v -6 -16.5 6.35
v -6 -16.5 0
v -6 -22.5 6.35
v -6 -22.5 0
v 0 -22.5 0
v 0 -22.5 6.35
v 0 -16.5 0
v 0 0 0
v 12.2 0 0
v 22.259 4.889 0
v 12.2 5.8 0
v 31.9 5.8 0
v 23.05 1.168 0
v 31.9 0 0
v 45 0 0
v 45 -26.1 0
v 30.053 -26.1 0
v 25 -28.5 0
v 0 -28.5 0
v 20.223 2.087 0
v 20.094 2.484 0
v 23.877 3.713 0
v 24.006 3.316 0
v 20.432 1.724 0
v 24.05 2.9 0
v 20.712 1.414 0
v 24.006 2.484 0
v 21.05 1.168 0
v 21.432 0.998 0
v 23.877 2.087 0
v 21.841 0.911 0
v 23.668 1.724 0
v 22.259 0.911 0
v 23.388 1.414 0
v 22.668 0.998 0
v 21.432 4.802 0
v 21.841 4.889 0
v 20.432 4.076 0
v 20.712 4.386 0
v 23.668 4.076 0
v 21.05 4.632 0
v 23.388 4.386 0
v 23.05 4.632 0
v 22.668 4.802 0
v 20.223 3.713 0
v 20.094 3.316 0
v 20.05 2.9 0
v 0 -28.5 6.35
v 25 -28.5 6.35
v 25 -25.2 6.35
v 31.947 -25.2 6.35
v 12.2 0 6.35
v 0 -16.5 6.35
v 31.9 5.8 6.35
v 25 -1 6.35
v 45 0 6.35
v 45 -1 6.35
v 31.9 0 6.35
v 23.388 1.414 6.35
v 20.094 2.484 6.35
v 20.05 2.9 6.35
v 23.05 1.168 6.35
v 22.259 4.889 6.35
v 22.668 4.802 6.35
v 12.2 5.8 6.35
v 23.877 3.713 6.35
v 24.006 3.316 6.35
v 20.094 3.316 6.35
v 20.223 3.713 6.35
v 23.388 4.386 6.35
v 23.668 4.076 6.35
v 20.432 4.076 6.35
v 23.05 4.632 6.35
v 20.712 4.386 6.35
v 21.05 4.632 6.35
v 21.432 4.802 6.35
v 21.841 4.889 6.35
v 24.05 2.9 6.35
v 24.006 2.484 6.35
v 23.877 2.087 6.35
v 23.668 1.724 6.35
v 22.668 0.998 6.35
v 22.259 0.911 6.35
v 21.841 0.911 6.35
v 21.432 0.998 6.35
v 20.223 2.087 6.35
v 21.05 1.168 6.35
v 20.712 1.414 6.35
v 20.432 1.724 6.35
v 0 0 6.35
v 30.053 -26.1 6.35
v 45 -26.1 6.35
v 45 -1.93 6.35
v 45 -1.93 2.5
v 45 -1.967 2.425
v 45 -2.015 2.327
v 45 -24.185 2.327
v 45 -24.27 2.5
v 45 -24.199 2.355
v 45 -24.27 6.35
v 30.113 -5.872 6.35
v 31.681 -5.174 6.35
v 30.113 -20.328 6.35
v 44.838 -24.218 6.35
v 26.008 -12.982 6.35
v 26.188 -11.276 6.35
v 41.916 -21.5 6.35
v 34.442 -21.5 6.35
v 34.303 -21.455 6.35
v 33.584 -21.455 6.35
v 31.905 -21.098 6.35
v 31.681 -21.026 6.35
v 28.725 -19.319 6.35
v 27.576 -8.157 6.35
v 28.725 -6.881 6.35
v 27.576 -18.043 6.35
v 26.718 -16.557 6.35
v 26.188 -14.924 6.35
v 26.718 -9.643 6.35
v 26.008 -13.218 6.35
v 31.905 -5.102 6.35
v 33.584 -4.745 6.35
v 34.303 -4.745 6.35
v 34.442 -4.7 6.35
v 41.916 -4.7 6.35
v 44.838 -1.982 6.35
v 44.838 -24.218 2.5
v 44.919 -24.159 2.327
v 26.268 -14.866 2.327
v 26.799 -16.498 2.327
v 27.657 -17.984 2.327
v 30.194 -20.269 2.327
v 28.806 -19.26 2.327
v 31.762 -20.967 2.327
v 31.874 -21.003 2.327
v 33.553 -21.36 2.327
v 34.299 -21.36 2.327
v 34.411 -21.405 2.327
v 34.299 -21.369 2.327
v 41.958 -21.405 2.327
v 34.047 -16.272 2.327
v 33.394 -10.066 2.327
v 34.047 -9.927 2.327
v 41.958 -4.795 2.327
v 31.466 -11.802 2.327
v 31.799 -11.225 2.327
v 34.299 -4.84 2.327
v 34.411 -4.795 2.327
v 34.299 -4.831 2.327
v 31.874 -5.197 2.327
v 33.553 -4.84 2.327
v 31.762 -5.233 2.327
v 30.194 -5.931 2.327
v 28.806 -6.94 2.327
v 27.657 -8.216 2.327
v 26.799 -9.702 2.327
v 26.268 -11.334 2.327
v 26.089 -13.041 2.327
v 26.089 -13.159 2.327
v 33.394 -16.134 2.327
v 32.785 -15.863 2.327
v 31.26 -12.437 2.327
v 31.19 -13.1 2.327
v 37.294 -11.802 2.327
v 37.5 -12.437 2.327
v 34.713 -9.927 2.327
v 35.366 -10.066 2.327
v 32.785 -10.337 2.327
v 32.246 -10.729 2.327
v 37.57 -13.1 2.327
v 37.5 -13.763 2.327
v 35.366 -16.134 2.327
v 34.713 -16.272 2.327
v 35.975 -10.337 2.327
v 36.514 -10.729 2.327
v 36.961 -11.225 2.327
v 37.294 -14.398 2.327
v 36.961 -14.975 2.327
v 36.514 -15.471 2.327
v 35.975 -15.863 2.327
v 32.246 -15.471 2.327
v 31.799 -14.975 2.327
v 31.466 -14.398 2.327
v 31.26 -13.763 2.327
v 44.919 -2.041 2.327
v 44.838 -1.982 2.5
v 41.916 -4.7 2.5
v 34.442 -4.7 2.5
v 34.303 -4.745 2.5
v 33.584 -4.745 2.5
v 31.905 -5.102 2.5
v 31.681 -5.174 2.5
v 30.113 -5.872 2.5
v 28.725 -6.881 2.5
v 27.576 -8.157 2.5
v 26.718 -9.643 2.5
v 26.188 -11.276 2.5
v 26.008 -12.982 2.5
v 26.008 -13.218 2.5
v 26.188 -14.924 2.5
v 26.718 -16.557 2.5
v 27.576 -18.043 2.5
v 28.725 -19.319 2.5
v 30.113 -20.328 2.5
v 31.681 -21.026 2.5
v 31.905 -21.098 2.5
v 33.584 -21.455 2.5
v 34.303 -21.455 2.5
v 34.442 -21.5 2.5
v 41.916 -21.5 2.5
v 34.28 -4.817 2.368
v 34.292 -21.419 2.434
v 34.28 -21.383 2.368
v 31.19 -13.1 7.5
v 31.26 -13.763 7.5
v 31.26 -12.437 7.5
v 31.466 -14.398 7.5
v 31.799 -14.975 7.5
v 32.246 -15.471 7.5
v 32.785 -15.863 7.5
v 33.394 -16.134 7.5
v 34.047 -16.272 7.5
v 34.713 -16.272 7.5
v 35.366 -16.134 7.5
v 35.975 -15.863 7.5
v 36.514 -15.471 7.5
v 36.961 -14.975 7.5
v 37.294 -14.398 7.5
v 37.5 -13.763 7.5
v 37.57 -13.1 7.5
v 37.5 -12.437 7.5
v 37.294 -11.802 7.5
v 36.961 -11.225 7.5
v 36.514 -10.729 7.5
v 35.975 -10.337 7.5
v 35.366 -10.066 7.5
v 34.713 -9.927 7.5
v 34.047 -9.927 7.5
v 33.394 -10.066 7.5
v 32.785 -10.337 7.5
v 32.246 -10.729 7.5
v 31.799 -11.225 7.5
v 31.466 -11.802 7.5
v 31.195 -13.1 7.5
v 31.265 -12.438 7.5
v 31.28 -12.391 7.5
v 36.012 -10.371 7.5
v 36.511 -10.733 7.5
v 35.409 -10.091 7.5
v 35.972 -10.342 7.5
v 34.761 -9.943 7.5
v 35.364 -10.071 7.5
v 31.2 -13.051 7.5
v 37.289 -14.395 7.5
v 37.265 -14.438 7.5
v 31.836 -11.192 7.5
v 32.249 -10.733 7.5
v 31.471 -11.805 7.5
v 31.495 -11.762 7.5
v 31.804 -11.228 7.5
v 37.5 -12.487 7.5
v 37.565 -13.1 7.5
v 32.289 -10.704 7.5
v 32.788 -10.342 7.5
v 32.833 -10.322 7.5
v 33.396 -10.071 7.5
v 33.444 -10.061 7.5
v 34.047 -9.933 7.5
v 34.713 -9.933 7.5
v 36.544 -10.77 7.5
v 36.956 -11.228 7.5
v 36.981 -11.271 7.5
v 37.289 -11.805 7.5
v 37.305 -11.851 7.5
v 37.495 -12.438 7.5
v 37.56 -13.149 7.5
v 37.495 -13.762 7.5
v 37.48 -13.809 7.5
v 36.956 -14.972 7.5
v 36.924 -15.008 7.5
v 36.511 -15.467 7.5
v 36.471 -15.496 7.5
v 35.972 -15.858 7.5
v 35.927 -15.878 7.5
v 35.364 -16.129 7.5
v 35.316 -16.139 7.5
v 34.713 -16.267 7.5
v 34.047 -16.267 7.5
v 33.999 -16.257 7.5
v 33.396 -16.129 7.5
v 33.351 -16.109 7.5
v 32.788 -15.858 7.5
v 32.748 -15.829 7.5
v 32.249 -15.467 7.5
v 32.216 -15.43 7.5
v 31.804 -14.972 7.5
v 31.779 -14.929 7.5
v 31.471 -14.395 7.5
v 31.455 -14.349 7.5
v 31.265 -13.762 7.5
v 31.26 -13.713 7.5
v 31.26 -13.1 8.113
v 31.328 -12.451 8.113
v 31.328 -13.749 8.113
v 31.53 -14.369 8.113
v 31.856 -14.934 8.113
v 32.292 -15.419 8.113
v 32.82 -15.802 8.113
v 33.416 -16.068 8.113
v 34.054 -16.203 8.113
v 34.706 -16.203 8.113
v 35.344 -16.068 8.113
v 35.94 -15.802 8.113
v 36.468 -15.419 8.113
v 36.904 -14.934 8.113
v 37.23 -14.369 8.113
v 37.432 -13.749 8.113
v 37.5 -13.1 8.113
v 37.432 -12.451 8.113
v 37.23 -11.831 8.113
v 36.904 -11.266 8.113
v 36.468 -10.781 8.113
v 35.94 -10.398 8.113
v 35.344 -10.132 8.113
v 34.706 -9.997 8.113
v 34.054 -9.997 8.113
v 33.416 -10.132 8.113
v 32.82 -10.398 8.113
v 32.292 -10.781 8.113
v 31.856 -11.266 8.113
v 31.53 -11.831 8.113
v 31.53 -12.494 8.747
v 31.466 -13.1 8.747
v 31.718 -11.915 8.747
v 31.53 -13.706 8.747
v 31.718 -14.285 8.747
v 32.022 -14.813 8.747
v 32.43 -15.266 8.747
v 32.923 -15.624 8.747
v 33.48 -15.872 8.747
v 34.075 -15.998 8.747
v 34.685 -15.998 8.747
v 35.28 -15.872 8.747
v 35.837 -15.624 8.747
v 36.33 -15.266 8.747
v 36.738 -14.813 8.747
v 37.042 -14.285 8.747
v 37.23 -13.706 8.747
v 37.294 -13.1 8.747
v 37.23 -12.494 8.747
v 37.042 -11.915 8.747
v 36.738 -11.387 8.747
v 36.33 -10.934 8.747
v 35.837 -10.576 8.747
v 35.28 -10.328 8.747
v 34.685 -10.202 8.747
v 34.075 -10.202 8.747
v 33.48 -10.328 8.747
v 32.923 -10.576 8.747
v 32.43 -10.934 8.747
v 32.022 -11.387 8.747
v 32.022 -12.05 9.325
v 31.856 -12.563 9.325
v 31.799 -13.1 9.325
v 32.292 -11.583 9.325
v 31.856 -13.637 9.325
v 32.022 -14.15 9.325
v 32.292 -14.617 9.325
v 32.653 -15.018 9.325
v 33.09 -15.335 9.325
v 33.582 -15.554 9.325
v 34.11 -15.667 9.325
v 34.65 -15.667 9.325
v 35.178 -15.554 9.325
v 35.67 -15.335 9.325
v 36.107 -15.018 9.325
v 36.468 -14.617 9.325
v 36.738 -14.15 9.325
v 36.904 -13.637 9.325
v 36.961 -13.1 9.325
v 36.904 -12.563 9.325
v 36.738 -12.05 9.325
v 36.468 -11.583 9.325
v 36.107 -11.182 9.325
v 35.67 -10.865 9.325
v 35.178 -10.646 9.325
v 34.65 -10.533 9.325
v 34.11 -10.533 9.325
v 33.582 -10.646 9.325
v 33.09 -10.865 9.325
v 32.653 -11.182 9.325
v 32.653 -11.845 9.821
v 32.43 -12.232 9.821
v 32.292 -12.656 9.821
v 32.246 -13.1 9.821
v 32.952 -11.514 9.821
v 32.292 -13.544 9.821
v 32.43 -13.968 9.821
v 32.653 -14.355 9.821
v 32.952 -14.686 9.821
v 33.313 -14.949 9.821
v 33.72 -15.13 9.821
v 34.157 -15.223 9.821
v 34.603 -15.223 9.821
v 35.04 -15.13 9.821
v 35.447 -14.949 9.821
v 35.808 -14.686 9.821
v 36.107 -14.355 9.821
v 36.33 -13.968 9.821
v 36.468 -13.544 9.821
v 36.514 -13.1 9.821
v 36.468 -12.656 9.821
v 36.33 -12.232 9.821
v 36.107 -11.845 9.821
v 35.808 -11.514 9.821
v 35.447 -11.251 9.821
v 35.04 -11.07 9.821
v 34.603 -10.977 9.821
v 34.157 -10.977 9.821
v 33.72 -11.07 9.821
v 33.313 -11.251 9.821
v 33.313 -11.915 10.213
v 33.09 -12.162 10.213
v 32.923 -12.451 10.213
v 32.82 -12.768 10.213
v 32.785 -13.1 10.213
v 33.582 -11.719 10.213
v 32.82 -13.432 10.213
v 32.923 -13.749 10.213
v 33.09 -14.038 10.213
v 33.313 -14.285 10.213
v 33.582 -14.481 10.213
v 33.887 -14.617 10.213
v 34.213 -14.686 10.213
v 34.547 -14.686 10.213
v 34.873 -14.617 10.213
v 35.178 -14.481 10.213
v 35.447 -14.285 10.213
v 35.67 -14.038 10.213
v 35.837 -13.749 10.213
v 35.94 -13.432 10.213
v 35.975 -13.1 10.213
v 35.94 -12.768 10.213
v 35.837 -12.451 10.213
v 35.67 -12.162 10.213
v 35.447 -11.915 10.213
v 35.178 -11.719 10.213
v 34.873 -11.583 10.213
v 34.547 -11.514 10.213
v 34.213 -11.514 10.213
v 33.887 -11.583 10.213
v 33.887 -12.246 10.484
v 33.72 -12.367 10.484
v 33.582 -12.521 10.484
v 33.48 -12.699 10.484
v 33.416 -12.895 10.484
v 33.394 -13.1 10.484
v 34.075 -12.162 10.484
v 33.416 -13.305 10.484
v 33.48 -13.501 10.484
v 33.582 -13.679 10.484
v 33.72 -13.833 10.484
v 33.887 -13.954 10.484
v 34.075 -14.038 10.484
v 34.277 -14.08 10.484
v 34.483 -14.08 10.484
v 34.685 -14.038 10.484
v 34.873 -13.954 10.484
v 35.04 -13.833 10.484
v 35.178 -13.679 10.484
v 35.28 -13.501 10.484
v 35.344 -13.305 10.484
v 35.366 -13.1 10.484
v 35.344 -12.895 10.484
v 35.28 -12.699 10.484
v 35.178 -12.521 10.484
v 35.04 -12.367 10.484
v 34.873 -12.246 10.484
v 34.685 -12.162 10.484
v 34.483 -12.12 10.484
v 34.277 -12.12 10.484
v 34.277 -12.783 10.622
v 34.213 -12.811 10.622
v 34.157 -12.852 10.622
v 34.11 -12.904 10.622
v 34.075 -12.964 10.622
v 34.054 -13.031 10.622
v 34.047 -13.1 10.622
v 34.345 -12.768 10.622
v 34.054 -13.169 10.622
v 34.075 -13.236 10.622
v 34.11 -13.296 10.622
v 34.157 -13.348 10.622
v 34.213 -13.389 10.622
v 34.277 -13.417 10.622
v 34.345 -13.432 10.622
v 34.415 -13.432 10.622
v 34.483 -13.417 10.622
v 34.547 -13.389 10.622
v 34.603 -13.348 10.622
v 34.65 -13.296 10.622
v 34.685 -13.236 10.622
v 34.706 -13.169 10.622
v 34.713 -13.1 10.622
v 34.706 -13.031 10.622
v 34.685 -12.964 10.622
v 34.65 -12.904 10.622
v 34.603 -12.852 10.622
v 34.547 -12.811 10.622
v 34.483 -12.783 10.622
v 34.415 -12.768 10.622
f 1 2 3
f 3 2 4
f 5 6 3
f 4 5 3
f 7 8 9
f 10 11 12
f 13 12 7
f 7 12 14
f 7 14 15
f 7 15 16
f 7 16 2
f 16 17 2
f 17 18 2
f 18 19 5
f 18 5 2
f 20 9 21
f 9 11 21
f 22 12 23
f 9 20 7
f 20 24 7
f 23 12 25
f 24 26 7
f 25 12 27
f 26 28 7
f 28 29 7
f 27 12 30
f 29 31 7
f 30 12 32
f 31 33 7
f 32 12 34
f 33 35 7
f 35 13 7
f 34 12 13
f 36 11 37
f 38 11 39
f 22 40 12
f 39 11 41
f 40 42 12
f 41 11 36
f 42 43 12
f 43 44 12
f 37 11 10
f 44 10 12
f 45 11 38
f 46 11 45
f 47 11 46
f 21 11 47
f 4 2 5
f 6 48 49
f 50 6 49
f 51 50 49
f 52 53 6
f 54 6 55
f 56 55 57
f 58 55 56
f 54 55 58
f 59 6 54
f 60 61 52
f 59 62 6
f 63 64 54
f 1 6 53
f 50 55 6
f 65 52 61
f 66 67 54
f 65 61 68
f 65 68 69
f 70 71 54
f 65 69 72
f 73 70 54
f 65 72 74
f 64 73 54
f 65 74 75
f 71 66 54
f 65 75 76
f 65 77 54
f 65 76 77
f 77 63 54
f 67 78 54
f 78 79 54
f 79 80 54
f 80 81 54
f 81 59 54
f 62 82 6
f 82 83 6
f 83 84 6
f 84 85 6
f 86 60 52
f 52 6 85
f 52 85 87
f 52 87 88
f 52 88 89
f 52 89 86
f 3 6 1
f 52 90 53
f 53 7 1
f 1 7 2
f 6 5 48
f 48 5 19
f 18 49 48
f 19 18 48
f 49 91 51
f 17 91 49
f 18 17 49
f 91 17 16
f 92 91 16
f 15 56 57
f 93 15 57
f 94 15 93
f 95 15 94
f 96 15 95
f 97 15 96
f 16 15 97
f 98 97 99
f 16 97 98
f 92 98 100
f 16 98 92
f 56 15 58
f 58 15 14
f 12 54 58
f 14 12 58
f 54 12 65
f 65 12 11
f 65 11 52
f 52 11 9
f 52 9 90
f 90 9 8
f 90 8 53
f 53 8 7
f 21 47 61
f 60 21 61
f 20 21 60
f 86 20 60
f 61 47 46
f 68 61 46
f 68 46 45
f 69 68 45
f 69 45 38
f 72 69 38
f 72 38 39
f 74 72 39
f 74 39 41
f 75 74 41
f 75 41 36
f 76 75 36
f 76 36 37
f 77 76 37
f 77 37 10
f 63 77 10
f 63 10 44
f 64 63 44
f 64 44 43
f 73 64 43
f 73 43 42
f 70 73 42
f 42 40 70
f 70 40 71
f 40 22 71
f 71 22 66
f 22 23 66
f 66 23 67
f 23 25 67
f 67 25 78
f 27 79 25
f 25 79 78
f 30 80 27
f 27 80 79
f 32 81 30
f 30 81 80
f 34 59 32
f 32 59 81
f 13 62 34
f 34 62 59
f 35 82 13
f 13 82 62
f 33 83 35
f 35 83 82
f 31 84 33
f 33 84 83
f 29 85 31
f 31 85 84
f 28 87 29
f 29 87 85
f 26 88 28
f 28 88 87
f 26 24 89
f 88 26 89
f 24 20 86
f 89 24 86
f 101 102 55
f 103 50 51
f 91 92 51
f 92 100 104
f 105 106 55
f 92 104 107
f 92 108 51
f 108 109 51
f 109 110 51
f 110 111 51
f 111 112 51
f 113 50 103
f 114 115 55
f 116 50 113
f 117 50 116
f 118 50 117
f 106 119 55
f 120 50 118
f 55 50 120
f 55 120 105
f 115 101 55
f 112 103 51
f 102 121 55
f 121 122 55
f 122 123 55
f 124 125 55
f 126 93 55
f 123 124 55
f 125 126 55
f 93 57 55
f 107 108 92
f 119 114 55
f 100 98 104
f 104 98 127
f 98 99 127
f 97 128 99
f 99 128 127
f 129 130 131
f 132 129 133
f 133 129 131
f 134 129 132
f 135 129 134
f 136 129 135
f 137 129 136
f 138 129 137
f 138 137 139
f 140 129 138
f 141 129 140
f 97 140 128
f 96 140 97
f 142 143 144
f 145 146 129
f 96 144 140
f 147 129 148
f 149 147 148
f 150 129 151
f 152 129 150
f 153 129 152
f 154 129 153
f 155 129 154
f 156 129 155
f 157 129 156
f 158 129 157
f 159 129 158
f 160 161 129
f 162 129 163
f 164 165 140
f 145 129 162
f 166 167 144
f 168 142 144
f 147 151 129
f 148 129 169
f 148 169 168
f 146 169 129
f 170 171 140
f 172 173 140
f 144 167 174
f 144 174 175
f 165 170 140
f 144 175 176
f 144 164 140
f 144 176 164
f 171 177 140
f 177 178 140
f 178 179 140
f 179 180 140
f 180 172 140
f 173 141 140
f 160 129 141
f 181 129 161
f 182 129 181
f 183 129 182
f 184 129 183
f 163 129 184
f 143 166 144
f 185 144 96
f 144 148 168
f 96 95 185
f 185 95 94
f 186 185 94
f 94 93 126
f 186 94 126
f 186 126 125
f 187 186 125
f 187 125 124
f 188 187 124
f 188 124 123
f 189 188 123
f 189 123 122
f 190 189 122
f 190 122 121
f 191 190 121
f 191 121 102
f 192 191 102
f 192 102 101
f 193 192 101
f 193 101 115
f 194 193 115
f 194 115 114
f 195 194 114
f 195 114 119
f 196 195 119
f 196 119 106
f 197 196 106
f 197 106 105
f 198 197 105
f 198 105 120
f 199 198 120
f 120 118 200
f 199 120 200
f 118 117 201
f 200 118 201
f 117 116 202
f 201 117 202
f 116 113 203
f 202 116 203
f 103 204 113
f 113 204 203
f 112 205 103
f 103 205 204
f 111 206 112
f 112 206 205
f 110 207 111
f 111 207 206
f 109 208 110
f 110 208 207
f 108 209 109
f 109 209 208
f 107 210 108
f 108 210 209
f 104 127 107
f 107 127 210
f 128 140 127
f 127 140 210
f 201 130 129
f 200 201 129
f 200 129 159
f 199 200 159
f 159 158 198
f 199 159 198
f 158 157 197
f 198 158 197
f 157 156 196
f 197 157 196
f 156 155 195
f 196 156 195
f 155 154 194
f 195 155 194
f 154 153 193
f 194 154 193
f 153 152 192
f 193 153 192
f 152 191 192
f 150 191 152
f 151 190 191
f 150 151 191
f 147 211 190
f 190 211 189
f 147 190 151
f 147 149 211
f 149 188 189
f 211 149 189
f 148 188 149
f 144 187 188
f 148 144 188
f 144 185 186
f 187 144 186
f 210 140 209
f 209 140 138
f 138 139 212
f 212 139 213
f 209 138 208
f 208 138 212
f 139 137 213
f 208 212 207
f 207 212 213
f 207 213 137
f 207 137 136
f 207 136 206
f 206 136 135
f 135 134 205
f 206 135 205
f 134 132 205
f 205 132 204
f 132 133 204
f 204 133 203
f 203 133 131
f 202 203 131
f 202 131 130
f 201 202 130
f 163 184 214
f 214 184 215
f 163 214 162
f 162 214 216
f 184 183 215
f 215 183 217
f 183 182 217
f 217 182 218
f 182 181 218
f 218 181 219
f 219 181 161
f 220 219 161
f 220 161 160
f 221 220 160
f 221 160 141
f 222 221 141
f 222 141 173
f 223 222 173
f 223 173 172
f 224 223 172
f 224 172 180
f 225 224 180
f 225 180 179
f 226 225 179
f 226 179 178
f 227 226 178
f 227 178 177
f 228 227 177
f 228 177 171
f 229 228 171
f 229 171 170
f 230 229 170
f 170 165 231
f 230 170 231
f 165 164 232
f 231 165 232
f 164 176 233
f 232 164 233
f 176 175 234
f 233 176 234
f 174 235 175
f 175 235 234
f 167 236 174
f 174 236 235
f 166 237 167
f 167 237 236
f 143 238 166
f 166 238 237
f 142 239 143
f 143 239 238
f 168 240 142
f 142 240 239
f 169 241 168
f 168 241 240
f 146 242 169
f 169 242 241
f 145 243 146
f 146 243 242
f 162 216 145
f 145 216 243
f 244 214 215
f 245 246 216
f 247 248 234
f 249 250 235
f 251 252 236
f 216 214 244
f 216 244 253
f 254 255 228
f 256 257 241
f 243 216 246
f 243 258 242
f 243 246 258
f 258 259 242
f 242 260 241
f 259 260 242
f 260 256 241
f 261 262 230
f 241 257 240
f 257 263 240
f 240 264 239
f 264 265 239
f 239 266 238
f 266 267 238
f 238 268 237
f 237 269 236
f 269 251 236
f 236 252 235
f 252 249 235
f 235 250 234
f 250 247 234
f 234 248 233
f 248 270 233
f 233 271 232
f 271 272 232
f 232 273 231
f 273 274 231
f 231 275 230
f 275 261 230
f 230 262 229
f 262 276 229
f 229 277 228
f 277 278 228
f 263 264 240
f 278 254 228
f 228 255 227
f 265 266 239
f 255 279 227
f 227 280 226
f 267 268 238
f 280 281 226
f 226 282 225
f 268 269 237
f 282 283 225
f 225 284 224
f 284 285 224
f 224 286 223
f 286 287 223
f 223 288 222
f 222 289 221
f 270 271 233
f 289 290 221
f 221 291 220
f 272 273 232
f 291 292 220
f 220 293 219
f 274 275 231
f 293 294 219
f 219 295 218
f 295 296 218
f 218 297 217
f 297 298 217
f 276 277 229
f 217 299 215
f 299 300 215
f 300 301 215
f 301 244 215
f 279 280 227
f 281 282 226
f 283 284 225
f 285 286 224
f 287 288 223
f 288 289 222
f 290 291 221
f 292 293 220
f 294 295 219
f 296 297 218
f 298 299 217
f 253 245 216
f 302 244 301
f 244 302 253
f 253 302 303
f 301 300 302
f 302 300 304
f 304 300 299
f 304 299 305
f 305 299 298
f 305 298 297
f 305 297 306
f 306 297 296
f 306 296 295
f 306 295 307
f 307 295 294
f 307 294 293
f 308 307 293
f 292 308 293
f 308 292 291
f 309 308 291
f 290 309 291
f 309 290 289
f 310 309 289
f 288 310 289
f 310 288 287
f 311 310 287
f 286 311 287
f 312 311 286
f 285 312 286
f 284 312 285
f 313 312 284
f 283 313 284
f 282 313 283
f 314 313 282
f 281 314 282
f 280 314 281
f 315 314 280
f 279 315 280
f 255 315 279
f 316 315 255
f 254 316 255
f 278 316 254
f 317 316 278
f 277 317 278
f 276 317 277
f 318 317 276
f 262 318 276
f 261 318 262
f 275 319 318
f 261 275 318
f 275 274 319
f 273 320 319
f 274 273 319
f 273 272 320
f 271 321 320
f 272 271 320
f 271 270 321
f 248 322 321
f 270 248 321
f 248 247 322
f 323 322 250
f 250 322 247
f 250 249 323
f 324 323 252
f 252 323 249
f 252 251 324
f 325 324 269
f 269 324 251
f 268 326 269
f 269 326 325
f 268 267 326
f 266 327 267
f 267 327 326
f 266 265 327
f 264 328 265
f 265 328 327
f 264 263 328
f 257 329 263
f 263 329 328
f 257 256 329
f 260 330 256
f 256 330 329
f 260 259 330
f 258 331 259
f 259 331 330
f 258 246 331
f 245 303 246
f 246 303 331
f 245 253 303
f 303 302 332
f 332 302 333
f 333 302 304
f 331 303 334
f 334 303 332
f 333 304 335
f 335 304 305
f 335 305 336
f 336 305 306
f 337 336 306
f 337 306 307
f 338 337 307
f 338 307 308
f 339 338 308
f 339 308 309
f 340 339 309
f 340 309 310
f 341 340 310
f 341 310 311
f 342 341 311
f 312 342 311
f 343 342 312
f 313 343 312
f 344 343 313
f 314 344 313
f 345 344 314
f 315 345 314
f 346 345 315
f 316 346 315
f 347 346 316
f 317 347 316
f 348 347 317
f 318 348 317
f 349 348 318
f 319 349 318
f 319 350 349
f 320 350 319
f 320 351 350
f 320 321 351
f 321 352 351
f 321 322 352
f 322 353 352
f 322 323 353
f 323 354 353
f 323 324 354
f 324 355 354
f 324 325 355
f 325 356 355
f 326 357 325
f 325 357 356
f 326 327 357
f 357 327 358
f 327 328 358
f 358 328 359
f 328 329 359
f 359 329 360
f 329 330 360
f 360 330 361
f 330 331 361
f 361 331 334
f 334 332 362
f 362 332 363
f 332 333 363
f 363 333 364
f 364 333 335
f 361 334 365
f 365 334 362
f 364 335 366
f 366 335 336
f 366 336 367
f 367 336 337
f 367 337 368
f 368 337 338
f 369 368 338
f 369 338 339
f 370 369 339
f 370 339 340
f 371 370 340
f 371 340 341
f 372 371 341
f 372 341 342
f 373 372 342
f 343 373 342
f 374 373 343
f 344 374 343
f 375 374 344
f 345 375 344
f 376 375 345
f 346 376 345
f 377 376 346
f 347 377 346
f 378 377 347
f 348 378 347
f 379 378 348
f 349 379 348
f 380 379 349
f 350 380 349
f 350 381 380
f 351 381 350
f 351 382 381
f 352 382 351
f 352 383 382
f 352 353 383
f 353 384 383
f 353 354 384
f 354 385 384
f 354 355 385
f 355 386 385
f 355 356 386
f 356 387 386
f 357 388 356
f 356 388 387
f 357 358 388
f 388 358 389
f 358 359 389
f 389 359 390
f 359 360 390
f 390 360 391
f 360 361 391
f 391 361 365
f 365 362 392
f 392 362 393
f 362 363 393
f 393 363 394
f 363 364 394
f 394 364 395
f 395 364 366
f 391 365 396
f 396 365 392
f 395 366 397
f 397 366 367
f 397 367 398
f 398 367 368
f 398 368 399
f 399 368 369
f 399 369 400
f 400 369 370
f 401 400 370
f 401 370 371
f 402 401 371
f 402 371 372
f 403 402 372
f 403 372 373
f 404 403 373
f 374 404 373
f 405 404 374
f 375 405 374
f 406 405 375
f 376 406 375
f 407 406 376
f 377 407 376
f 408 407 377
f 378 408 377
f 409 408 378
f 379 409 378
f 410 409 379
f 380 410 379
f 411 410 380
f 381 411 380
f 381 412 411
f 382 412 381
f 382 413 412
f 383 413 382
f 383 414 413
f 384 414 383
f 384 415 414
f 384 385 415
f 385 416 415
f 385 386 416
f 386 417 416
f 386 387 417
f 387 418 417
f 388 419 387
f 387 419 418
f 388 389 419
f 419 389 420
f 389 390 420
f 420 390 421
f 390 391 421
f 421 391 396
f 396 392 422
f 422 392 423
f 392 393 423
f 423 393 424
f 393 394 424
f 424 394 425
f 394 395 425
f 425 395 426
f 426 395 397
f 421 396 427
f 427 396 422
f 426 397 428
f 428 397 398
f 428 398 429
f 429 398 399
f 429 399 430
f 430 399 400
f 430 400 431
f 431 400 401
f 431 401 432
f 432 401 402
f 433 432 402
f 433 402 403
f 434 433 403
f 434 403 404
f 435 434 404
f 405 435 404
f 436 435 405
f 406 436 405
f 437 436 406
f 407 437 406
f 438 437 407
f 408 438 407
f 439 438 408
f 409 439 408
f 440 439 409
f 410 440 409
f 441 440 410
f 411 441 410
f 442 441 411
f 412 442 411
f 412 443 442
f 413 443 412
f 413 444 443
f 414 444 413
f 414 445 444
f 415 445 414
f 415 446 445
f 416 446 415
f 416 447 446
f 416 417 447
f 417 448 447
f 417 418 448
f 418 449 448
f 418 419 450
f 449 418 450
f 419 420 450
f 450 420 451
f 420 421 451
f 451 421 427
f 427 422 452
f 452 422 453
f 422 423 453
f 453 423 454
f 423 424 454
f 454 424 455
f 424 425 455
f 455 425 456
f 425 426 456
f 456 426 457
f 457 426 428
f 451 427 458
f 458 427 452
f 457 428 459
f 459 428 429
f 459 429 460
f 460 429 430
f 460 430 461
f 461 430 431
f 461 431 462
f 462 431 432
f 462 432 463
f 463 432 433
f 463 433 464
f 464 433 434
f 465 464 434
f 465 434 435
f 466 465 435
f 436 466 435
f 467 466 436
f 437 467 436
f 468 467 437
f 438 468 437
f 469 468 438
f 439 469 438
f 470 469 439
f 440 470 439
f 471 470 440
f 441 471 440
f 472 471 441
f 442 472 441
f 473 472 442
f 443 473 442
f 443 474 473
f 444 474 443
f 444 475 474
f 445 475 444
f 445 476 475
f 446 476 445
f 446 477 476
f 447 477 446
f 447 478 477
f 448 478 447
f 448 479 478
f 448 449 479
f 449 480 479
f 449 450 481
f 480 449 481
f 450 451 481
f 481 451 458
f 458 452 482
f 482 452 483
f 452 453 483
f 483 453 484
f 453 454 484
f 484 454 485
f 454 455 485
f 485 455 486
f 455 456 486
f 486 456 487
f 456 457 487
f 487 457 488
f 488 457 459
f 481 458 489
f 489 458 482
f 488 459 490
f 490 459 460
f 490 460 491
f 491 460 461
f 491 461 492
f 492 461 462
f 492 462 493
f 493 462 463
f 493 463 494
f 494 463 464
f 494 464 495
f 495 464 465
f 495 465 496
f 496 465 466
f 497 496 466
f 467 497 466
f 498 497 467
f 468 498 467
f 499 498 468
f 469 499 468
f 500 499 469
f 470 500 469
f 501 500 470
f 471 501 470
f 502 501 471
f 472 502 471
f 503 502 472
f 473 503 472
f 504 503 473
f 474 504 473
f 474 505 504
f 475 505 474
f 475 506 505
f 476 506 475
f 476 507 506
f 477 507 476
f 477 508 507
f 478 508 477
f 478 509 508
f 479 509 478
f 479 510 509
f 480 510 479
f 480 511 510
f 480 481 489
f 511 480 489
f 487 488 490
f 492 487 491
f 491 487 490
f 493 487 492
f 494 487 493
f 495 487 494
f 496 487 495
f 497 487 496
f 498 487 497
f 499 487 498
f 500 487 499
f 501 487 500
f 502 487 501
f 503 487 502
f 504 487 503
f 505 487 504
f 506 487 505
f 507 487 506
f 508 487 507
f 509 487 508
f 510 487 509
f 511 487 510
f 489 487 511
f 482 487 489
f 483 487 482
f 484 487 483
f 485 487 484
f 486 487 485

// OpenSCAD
// file: lib/DepthGauge.scad
// Distance from the back-plate to the far outer point of the mounting bracket
dg_length=18.8;

// Width of the mounting bracket at the widest point, including flange
dg_width=22;

// Thickness of the mounting bracket
dg_thickness=5;

// Distance from the back-plate to the near-edge of the mounting hole
dg_pin_centre=10.62;

// Diameter of the mounting hole
dg_pin_radius=3.29;


// Jitter. This should be much less than one layer height.
j=0.05;



module DepthGauge_MountBlock(pin=true)
{
	// Width of the mounting bracket at the flange
	unflanged_width=16.42;

	difference()
	{
		// Main body of the bracket
		union()
		{

			// Rounded end of main body of the bracket
			translate([-dg_pin_centre, 0, 0])
			cylinder(r=unflanged_width/2, h=dg_thickness, center=true, $fn=30);

			// Square end of main body of the bracket
			translate([0, 0, -dg_thickness/2])
			linear_extrude(height=dg_thickness) 
			polygon(points=[
				[0, -dg_width/2], // bottom-right, by flange
				[0, dg_width/2], // top-right, by flange
				[-3, unflanged_width/2], // top-right, by straight off flange
				[-dg_pin_centre, unflanged_width/2], // top middle, by hole
				[-dg_pin_centre, -unflanged_width/2], // bottom middle, by hole
				[-3, -unflanged_width/2] // bottom-right, by straight off flange
			]);
		}

		if(pin==true)
		{
			// Hole
			translate([-dg_pin_centre, 0, 0])
			cylinder(r=dg_pin_radius, h=dg_thickness+j*2, center=true, $fn=30);
		}
	}
}

//DepthGauge_MountBlock(false);
// file: x_side.scad
include <lib/DepthGauge.scad>

// Panel thickness
//t=6.35;

// Jitter. This should be much less than one layer height.
j=0.03;

function PanelThickness()=6.35;

// Side panel with the various holes cut out
module XSidePlate(endstop_hole=false)
{
	translate([0, 0, PanelThickness()])
	rotate([180, 0, 0])
	difference()
	{
		linear_extrude(height=PanelThickness()) 
		polygon(points=[
			[0, 0],       // 0
			[12.2, 0],    // 1
			[12.2, -5.8], // 2
			[31.9, -5.8], // 3
			[31.9, 0],    // 4
			[45, 0],      // 5
			[45, 19],     // 6
			[25, 28.5],   // 7
			[0, 28.5],    // 8
			[0, 22.5],    // 9
			[-6, 22.5],   //10
			[-6, 16.5],   //11
			[0, 16.5]     //12
		]);

		// X Endstop bolt hole
		if(endstop_hole) {
			translate([17.9, 13.3, -j])
			cylinder(h=PanelThickness()+j+j, r=1.5,$fn=30);
		}

		// Main mounting bolt hole
		translate([22.05, -2.9, -j]) 
		cylinder(h=PanelThickness()+j+j, r=2, $fn=30);
	}
}


XSidePlate();
// main file
use <x_side.scad>
include <lib/DepthGauge.scad>

// Jitter. This should be much less than one layer height.
j=0.05;


// Side panel with the various holes cut out
module XSideDepthMount()
{
	translate([0, 0, PanelThickness()])
	rotate([180, 0, 0])
	difference()
	{
		scale([1, -1, 1])
		XSidePlate();

		translate([45-dg_width+2, 1, -j])
		cube([dg_width+j, 24.2, PanelThickness()+j+j]);
	}
	
	translate([45, -13.1, 0])
	DepthGaugeMountBlock();
}


module DepthGaugeMountBlock()
{
	// Margin around the actual bracket
	m=2;

	// Tolerance for the bracket cutout
	tol=0.2;

	// Size of the slot
	slot_size=0;
	
	difference()
	{
		translate([-dg_length-m, -dg_width/2-m, 0])
		cube([dg_length+m, dg_width+m*2, PanelThickness()]);

		translate([0, 0, dg_thickness]) 
		minkowski()
		{
			DepthGauge_MountBlock(pin=false);
			sphere(r=tol);
		}
	}

	translate([-dg_pin_centre, 0, dg_thickness/2])
	difference()
	{
		union()
		{	
			// Stalk
			translate([0,0,-tol-j]) cylinder(r=dg_pin_radius-tol/2, h=dg_thickness+tol+j, $fn=30);

			// Cap
			translate([0, 0, dg_thickness-j]) 
			sphere(r=dg_pin_radius-tol/2, $fn=30);
		}
	
		if(slot_size > 0)
		{
			translate([-slot_size/2, -dg_pin_radius, 0]) 
			cube([slot_size, dg_pin_radius*2, dg_thickness*2]);
		}
	}

}

XSideDepthMount();
